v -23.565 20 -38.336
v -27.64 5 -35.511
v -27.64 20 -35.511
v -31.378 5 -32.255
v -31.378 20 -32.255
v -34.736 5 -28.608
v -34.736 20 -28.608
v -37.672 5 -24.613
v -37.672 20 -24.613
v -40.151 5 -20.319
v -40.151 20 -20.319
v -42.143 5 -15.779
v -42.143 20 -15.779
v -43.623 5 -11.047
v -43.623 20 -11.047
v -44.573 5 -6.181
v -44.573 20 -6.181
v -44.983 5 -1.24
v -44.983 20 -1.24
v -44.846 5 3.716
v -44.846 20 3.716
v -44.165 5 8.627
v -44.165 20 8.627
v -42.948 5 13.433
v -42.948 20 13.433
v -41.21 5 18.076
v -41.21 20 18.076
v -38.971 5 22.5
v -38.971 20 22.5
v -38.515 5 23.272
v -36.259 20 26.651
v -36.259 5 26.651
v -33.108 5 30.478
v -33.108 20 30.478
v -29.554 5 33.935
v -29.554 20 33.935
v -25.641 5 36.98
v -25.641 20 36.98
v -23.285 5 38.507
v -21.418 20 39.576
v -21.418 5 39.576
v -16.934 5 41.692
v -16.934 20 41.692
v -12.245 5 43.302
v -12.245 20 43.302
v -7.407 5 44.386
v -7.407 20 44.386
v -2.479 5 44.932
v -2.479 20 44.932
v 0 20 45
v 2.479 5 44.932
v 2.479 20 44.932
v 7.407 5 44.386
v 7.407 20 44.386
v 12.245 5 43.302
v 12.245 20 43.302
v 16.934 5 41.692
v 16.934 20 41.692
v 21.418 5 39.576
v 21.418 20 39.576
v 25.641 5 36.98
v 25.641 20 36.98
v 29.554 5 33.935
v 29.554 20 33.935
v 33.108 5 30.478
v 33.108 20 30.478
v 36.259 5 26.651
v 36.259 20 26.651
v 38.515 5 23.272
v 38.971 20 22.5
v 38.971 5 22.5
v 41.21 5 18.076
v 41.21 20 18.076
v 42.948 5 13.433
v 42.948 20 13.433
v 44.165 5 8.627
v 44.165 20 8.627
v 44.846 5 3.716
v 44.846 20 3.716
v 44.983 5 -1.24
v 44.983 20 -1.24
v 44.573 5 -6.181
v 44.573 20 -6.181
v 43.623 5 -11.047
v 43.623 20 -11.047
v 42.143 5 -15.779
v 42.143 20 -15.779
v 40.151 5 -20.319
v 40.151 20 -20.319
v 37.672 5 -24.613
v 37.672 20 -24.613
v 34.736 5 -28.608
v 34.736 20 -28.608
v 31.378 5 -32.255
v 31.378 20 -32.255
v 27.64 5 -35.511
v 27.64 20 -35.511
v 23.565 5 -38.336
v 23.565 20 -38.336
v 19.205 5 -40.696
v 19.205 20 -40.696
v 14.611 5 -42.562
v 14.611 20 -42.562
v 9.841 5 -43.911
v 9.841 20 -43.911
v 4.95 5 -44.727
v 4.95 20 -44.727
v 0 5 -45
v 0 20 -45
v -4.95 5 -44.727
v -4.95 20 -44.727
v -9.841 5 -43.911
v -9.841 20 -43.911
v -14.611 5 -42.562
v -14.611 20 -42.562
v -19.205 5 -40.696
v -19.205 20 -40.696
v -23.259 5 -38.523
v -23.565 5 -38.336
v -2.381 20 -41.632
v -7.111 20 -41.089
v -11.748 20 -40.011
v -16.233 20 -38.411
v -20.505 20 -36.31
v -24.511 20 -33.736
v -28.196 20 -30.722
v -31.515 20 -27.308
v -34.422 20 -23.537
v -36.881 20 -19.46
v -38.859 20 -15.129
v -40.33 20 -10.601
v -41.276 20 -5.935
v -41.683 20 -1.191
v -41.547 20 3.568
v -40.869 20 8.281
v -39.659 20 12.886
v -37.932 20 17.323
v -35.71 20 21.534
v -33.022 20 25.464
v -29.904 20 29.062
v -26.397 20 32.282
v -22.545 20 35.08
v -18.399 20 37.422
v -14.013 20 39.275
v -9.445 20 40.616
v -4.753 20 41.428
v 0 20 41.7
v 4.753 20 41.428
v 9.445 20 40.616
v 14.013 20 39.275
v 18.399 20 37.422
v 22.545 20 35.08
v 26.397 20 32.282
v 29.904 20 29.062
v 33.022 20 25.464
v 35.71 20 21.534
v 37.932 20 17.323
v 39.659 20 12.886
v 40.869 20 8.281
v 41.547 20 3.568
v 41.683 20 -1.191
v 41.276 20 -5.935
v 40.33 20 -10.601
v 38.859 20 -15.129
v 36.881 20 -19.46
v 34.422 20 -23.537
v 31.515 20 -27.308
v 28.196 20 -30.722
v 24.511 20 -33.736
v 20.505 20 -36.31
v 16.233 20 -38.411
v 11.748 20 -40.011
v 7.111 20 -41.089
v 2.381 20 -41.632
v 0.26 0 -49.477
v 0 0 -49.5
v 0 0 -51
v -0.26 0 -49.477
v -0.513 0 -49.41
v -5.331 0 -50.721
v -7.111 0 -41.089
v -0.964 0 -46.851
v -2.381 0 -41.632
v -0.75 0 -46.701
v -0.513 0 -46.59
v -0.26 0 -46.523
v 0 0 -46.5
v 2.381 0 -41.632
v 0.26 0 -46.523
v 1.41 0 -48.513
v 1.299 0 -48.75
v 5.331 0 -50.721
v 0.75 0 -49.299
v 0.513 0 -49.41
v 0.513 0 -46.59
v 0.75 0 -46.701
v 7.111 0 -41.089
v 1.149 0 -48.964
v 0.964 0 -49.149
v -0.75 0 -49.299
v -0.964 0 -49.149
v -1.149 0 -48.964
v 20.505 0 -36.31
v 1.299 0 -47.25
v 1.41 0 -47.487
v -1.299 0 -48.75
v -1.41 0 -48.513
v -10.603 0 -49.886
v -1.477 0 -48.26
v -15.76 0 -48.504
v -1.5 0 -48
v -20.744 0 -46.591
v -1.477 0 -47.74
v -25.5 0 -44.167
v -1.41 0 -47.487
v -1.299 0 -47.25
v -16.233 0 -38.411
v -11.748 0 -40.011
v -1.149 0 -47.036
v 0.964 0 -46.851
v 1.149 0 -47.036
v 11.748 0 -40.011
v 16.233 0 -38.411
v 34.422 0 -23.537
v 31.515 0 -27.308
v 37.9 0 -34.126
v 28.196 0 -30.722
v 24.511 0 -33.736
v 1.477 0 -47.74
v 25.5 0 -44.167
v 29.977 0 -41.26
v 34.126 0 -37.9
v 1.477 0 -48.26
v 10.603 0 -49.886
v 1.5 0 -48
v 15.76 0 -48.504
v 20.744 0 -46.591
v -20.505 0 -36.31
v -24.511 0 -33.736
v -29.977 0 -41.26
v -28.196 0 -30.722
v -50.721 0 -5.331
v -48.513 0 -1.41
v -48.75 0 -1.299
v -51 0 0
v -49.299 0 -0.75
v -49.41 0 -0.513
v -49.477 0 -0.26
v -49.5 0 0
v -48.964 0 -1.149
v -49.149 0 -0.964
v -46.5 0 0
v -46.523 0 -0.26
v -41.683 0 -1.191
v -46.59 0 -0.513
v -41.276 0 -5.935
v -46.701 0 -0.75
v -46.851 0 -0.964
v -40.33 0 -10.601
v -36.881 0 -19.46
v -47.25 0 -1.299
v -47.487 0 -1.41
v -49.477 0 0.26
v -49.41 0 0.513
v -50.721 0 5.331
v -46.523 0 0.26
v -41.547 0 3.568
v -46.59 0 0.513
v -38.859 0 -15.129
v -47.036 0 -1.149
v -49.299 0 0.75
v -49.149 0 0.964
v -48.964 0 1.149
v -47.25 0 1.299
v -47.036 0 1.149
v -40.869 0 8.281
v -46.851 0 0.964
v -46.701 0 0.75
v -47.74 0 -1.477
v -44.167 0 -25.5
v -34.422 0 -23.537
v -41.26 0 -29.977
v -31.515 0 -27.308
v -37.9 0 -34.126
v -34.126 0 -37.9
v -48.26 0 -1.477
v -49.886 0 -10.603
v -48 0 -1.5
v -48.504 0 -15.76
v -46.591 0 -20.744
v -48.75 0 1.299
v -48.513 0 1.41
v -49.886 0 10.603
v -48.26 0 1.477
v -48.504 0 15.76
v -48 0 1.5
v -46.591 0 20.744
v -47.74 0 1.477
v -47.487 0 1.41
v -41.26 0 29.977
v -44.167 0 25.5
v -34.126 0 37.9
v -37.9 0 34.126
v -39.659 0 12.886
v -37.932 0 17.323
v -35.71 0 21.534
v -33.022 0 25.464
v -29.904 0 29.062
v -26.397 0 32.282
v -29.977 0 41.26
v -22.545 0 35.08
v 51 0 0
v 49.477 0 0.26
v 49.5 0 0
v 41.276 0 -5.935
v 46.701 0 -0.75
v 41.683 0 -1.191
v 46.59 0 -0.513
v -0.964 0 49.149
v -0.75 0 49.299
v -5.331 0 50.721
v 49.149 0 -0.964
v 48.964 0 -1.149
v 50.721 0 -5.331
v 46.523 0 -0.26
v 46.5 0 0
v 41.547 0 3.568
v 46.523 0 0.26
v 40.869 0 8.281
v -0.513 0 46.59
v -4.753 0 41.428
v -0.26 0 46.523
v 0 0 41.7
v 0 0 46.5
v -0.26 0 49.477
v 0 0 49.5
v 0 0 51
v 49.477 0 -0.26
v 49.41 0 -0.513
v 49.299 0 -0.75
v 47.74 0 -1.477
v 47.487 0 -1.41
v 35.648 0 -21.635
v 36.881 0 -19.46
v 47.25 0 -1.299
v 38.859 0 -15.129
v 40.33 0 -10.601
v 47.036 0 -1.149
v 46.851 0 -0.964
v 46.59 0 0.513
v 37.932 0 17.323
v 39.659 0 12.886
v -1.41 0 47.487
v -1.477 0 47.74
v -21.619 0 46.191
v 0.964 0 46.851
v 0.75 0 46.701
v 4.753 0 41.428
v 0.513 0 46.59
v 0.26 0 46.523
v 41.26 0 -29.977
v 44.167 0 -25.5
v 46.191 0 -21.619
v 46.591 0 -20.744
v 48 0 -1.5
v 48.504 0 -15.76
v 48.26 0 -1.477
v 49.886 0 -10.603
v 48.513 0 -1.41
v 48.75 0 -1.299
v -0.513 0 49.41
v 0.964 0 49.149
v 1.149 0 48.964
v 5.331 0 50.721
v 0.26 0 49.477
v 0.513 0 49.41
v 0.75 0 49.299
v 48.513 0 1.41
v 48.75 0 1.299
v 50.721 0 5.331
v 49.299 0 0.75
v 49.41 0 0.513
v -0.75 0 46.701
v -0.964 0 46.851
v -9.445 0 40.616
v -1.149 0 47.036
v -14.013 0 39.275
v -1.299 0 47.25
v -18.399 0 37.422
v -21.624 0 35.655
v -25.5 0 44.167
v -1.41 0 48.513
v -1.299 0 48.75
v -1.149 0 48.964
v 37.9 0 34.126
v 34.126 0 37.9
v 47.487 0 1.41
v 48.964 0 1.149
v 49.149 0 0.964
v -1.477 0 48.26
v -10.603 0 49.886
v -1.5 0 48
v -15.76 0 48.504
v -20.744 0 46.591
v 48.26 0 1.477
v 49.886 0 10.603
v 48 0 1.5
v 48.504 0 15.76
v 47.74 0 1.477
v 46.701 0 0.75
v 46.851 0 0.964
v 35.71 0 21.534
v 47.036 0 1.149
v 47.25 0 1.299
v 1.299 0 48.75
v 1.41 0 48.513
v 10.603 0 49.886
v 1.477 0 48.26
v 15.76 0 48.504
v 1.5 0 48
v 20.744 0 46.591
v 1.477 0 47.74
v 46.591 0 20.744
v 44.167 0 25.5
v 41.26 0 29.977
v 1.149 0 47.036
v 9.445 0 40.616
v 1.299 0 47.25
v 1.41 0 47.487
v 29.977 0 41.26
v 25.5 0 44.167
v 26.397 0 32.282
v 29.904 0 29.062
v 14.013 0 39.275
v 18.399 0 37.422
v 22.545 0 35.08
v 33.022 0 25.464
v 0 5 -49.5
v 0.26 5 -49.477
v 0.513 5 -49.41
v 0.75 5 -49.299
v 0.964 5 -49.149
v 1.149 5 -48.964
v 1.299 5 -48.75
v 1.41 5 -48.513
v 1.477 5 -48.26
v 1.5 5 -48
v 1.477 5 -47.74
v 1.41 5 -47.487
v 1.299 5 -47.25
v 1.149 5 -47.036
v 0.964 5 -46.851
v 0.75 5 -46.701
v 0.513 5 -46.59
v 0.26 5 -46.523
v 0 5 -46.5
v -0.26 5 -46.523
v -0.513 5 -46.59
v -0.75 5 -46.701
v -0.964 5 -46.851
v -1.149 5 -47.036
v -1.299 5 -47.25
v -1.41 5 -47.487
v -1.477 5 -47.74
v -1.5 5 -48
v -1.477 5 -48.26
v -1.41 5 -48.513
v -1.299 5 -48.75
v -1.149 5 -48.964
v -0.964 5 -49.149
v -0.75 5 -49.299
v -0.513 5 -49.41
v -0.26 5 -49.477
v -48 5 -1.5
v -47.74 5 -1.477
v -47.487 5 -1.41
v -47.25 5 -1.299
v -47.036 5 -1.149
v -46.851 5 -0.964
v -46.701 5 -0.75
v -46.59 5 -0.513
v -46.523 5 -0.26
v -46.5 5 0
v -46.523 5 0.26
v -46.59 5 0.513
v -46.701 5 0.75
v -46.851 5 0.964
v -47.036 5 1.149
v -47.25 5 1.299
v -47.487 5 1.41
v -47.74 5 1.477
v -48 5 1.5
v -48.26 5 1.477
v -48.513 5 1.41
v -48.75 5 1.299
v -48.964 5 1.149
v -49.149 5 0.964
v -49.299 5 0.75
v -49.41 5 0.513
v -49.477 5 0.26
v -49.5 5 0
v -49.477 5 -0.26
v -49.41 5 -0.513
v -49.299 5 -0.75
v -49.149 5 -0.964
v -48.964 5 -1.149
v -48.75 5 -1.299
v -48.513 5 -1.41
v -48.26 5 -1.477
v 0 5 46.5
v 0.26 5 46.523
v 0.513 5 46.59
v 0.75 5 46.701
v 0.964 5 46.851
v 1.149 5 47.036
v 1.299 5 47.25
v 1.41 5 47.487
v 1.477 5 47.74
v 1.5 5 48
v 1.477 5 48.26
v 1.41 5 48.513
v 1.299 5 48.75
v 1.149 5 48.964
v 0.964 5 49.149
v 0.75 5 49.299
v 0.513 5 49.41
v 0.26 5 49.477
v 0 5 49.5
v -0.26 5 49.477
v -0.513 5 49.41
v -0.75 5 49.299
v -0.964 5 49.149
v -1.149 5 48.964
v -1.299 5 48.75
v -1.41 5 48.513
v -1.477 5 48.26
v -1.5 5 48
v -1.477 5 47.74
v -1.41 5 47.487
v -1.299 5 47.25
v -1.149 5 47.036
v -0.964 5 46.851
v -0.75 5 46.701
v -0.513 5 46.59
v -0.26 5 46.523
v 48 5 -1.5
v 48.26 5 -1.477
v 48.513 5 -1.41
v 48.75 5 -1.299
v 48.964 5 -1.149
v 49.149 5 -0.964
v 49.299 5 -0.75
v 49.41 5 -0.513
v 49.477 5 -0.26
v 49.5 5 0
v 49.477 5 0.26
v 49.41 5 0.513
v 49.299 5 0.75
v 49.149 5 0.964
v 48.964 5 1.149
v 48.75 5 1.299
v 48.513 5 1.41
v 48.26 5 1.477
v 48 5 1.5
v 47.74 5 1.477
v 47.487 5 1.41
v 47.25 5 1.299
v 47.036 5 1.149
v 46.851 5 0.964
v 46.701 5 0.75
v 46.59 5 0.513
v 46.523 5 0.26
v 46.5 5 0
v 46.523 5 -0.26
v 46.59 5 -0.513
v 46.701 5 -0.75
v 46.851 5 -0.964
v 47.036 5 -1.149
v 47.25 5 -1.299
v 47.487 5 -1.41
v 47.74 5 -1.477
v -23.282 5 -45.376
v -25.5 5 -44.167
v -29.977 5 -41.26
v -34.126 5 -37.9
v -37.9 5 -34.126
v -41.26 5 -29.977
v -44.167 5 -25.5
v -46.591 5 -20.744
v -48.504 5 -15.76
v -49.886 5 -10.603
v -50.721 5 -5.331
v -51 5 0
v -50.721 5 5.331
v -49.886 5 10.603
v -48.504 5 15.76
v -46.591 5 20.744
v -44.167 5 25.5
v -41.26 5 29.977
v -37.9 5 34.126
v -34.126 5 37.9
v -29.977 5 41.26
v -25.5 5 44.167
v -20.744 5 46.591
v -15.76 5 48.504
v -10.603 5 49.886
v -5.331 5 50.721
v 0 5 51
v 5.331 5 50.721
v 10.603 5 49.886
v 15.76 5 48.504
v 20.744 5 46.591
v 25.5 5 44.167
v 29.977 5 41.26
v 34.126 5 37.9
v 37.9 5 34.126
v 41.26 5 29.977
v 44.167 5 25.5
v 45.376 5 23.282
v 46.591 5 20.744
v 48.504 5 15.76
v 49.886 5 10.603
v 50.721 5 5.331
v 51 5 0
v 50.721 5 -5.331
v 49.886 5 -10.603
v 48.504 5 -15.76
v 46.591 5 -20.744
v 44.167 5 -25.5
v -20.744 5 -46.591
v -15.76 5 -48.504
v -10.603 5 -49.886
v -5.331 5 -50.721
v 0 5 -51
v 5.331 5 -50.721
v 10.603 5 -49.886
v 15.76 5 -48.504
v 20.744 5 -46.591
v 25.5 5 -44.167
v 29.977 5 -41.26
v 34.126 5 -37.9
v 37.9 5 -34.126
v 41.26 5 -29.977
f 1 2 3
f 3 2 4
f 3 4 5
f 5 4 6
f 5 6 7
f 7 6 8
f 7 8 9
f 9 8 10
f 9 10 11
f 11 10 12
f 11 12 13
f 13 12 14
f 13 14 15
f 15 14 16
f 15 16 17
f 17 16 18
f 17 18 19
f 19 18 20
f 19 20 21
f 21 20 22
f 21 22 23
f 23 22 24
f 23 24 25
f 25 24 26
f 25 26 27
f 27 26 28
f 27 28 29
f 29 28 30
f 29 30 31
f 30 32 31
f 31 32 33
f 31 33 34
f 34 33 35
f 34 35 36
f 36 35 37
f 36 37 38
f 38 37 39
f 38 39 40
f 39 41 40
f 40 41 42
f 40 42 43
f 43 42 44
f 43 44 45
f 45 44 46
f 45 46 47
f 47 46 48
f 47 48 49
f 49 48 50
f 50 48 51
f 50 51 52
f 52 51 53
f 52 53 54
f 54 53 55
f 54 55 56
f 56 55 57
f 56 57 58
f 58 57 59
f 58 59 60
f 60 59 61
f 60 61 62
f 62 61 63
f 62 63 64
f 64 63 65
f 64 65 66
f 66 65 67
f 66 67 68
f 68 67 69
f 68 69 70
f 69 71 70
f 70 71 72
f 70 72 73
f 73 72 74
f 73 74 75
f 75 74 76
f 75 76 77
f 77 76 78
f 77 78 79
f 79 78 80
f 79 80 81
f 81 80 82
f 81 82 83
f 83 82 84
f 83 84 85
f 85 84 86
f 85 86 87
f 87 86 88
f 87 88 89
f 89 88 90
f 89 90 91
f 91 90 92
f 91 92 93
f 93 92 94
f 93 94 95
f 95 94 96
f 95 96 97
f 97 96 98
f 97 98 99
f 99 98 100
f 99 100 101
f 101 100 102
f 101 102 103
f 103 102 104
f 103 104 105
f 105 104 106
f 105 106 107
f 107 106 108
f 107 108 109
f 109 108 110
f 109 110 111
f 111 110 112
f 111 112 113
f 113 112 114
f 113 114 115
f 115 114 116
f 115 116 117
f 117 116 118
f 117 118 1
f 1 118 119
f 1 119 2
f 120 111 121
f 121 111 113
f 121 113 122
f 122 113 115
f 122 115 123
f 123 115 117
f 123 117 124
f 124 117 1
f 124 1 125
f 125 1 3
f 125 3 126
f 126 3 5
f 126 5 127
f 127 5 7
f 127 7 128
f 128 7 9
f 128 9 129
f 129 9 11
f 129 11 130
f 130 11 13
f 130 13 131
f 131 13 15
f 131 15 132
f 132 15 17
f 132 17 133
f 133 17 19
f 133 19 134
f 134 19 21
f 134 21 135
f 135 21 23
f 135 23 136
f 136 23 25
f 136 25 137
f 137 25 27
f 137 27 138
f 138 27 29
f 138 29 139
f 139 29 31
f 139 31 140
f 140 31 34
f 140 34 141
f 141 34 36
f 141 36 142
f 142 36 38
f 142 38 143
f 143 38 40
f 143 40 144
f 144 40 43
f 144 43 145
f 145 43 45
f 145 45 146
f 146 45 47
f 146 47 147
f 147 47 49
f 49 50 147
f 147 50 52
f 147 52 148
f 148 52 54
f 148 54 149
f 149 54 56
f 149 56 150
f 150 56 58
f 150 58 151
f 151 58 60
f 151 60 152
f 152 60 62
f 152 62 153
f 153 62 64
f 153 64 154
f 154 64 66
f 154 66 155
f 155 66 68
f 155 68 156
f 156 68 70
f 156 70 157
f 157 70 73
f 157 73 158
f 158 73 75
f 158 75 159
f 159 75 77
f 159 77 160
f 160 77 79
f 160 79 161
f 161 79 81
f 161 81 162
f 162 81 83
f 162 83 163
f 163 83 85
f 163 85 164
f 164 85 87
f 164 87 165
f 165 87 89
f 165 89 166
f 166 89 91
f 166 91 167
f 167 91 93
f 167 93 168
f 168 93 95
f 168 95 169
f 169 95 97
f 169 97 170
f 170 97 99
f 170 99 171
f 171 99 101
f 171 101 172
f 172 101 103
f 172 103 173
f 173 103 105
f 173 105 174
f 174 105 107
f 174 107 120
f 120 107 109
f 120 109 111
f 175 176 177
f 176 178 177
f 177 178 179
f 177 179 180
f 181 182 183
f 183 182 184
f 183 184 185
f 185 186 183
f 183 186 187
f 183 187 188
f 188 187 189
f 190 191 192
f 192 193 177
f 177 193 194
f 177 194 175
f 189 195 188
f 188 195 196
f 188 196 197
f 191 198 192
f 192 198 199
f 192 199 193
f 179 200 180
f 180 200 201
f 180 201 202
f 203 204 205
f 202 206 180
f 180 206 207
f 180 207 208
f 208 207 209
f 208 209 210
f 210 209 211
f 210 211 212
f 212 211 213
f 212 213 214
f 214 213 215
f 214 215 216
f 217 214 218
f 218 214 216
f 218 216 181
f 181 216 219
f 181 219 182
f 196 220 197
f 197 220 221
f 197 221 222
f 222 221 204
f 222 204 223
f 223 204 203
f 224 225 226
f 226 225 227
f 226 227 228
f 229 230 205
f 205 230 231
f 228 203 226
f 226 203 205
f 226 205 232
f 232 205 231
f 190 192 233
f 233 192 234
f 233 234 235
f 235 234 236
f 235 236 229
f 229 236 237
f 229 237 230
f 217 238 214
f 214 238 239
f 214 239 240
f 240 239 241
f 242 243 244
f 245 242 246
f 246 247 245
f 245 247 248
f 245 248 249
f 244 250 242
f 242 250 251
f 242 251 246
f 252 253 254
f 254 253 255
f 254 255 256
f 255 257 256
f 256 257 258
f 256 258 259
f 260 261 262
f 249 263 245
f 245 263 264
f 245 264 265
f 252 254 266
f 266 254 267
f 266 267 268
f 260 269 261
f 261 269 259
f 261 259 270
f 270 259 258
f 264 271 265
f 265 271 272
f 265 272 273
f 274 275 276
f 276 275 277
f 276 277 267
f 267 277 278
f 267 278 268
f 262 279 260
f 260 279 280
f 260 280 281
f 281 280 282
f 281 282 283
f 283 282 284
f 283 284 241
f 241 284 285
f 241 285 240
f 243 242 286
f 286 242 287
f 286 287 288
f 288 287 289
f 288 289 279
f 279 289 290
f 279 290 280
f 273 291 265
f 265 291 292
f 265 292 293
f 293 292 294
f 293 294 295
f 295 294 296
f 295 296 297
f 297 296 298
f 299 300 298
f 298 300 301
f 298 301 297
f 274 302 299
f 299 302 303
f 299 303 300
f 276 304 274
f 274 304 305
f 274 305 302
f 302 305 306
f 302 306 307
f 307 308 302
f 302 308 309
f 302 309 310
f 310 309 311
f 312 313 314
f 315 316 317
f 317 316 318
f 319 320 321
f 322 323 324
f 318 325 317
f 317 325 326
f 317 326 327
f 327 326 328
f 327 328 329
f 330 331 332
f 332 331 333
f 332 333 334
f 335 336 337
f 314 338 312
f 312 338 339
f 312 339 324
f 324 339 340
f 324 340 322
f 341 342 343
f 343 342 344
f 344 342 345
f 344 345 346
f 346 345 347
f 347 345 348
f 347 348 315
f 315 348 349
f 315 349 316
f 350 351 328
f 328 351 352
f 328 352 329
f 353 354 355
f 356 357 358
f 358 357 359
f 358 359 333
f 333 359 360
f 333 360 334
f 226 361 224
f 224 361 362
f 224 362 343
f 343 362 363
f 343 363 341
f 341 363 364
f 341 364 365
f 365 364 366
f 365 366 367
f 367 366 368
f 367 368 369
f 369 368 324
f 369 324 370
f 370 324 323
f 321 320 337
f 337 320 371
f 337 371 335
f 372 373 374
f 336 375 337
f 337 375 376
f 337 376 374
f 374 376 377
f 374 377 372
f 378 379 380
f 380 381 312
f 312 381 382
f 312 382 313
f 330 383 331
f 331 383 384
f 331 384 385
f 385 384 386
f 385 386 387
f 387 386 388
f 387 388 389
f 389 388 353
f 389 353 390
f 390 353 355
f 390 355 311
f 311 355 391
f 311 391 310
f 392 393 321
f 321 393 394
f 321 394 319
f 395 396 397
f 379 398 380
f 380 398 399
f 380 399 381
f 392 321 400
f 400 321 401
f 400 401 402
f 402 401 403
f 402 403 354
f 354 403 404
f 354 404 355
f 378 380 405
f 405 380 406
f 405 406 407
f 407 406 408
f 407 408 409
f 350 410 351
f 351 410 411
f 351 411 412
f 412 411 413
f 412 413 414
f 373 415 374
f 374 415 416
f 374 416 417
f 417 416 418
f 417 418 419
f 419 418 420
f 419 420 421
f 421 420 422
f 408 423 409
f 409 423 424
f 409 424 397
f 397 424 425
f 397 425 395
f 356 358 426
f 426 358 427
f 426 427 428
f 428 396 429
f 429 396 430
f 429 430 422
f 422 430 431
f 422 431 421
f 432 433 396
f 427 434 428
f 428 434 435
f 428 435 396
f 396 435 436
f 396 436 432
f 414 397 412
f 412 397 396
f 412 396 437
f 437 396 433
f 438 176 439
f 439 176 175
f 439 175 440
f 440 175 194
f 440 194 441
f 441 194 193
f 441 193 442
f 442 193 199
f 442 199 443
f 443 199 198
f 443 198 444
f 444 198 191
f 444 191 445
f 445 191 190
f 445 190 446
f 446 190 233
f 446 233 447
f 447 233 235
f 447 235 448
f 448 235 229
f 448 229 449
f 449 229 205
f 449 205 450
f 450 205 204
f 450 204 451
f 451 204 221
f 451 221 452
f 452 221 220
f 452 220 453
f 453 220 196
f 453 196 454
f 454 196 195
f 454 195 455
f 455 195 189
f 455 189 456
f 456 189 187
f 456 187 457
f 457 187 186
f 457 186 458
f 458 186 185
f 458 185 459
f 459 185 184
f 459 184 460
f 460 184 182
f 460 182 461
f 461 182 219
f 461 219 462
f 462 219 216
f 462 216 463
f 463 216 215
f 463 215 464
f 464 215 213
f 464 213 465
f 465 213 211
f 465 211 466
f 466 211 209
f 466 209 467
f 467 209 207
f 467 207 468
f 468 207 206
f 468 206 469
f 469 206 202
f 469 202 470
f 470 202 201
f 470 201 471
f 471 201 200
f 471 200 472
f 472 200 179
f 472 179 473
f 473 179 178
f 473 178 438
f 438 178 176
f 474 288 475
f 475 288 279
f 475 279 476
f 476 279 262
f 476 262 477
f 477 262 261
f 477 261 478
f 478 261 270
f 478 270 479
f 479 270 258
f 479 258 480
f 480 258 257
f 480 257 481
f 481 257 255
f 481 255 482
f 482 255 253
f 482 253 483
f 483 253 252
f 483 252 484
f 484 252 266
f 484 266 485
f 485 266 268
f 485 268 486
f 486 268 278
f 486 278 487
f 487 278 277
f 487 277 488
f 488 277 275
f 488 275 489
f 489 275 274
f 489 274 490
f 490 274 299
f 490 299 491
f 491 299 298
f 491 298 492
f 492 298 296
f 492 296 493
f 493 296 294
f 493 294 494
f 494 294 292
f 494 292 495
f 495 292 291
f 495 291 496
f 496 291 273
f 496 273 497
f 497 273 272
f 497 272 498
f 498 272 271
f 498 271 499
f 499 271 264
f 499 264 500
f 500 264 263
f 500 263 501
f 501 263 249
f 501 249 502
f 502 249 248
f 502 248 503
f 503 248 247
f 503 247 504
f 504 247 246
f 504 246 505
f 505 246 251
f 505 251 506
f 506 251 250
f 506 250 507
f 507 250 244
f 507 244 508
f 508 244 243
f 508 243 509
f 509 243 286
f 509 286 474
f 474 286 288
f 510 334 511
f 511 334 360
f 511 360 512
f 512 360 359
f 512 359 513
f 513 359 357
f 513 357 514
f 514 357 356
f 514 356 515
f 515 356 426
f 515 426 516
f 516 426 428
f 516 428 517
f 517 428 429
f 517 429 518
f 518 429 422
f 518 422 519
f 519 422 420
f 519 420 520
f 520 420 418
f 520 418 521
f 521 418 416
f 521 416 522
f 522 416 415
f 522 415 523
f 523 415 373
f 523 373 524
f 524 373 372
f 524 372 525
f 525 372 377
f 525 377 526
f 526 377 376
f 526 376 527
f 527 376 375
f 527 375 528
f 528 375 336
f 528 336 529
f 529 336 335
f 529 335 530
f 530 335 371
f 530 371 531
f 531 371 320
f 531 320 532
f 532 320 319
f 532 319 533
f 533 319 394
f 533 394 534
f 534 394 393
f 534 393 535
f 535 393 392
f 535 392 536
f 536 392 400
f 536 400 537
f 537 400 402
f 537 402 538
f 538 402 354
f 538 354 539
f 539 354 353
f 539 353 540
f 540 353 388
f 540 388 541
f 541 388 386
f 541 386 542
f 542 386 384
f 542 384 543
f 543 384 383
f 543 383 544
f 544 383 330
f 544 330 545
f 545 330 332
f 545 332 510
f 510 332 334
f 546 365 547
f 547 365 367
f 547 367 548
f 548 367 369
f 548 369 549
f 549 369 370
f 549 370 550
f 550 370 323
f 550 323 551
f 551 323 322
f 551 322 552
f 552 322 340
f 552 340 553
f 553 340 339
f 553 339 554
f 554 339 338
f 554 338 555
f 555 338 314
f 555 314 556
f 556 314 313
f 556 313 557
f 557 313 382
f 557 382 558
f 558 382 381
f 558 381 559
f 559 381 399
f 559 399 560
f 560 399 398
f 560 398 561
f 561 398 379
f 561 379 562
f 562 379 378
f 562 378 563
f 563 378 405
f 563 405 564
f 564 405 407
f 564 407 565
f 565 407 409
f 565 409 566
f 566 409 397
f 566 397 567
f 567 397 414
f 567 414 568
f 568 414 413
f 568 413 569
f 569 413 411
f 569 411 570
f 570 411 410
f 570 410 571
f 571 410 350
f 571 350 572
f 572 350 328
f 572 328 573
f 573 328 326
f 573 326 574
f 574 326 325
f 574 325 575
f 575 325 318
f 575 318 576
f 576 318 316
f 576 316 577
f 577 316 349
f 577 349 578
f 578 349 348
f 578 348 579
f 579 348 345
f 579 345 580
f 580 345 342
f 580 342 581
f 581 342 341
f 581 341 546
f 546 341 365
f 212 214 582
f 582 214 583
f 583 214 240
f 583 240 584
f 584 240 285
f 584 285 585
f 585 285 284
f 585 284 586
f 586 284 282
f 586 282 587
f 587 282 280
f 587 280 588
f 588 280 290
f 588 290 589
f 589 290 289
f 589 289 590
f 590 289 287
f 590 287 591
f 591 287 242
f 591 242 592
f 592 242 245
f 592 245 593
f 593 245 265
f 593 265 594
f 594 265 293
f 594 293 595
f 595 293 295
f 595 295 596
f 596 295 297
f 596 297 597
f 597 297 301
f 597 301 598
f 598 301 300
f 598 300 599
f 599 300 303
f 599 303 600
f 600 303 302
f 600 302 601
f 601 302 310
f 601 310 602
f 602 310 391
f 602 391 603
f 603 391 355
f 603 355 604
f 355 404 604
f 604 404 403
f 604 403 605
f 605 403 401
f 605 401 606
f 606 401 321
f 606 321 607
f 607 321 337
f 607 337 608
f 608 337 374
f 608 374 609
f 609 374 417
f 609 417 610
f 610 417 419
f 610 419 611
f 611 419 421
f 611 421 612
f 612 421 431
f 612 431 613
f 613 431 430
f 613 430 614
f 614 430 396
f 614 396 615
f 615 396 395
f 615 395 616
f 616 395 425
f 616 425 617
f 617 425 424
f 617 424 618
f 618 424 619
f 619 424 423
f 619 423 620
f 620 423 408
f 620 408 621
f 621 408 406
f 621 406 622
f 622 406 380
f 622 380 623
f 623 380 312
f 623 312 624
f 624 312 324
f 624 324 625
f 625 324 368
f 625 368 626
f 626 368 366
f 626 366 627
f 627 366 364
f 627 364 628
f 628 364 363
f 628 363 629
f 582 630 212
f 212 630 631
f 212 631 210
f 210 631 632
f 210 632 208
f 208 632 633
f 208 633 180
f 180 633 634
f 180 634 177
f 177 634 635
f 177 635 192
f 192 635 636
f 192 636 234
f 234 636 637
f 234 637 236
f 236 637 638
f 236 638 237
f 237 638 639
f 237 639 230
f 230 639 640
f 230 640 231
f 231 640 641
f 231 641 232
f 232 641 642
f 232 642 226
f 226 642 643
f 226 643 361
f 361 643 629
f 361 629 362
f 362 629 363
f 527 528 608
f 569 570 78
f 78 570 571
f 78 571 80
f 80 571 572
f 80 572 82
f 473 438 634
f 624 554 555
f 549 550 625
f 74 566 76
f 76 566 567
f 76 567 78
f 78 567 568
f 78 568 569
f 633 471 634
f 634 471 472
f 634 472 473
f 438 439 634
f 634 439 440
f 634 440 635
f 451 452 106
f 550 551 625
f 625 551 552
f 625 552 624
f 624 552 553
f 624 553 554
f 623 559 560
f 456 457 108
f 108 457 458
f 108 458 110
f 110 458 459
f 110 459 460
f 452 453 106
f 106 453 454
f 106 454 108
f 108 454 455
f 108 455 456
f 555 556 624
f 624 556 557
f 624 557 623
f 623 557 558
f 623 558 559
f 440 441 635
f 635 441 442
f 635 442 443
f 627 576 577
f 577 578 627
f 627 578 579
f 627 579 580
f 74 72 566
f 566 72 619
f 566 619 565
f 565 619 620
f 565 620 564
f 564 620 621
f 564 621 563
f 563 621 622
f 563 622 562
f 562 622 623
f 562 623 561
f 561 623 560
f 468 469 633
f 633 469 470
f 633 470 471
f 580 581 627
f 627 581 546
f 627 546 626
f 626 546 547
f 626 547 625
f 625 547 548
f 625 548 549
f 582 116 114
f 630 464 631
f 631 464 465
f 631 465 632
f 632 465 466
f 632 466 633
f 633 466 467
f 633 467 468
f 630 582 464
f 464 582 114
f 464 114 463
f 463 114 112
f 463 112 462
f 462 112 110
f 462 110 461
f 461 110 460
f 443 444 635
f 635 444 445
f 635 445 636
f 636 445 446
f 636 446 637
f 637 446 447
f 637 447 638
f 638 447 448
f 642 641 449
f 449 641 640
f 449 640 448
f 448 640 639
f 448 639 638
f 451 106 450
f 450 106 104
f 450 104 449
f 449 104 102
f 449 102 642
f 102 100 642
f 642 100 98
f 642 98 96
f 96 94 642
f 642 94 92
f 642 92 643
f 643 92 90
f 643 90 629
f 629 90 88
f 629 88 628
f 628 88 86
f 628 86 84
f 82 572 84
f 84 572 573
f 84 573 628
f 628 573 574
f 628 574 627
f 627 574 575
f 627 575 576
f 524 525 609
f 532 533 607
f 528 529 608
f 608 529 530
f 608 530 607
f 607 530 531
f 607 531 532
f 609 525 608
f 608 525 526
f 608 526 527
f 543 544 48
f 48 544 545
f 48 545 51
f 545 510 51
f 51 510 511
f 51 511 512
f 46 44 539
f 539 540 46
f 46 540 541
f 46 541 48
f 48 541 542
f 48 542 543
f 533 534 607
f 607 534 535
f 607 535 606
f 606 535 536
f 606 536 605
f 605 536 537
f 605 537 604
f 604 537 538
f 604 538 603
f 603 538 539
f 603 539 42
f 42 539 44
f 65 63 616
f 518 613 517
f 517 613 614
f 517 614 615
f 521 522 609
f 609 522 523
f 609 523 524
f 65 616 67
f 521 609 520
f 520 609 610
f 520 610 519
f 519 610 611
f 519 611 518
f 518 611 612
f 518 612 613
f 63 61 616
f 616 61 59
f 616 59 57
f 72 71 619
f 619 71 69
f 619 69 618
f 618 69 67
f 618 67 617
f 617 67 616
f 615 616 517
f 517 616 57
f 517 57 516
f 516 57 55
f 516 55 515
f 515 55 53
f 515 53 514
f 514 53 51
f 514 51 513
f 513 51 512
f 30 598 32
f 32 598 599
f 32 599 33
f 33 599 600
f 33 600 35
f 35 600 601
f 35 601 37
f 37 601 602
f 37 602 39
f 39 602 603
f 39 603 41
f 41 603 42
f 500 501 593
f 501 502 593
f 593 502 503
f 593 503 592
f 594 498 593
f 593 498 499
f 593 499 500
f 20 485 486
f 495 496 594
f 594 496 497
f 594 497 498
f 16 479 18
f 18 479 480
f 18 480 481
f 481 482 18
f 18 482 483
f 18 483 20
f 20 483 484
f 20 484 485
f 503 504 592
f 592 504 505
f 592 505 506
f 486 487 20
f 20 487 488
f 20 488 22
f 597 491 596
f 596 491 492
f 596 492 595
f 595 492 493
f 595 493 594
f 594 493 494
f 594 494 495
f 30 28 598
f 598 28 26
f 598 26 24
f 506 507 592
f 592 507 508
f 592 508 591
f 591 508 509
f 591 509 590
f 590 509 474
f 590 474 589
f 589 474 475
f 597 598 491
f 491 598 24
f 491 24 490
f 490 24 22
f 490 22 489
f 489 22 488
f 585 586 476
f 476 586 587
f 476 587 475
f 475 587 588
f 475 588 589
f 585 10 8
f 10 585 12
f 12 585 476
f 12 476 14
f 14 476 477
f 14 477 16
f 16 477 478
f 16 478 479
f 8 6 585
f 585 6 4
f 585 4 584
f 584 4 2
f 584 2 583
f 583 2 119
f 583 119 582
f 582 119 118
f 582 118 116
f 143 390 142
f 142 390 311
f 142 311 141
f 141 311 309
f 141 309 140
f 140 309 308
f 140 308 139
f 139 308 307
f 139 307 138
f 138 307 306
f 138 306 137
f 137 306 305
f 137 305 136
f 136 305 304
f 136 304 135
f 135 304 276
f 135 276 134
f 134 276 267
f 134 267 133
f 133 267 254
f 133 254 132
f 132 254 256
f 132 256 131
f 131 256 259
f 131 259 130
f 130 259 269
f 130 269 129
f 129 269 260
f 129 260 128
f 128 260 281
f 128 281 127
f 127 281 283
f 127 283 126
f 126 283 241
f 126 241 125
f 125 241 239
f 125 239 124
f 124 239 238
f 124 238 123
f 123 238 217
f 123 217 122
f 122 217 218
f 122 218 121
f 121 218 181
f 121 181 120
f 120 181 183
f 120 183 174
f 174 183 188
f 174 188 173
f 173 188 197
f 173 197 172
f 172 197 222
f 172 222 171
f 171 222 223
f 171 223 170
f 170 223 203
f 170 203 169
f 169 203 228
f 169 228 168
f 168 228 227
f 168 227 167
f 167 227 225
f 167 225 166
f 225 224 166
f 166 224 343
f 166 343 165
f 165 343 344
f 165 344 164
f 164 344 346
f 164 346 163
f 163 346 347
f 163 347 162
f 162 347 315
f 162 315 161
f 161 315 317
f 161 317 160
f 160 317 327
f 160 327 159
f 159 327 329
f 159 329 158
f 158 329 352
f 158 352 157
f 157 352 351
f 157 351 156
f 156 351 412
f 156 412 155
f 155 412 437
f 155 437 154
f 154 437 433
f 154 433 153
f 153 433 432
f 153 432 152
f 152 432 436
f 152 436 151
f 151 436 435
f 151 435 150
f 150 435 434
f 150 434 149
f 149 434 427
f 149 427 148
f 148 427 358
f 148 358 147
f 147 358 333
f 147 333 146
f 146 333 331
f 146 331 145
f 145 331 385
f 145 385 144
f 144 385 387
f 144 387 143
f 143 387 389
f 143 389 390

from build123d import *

# Parameters (mm, degrees)
SKETCH1_R           = 45
SKETCH1_R_2         = 42
BOSS_EXTRUDE1_DEPTH = 20
SKETCH2_R           = 51
SKETCH2_R_2         = 1.5
SKETCH2_R_3         = 45
BOSS_EXTRUDE2_DEPTH = 5
BOSS_EXTRUDE3_START = -20
SKETCH3_R           = 42
SKETCH3_R_2         = 41.5
BOSS_EXTRUDE3_DEPTH = 20
SKETCH4_R           = 41.7
SKETCH4_R_2         = 41.5
CUT_EXTRUDE1_DEPTH  = 75.846509605


with BuildPart() as part:
    # Sketch1 → Boss-Extrude1 (new body)
    with BuildSketch(Plane(origin=(0, 0, 0), x_dir=(1, 0, 0), z_dir=(0, 1, 0))):
        with Locations(Location((0, 0, 0), (0, 0, 270))):
            Circle(SKETCH1_R)
        with Locations(Location((0, 0, 0), (0, 0, 270))):
            Circle(SKETCH1_R_2, mode=Mode.SUBTRACT)
    extrude(amount=BOSS_EXTRUDE1_DEPTH)

    # Sketch2 → Boss-Extrude2 (add)
    with BuildSketch(Plane.XZ):
        with Locations(Location((0, 0, 0), (0, 0, 270))):
            Circle(SKETCH2_R)
        with Locations(Location((0, -48, 0), (0, 0, 270))):
            Circle(SKETCH2_R_2, mode=Mode.SUBTRACT)
        with Locations(Location((-48, 0, 0), (0, 0, 270))):
            Circle(SKETCH2_R_2, mode=Mode.SUBTRACT)
        with Locations(Location((0, 0, 0), (0, 0, 270))):
            Circle(SKETCH2_R_3, mode=Mode.SUBTRACT)
        with BuildLine():
            ThreePointArc((49.5, 0), (48, -1.5), (46.5, 0))
            ThreePointArc((46.5, 0), (48, 1.5), (49.5, 0))
        make_face(mode=Mode.SUBTRACT)
        with Locations(Location((0, 48, 0), (0, 0, 270))):
            Circle(SKETCH2_R_2, mode=Mode.SUBTRACT)
    extrude(amount=-BOSS_EXTRUDE2_DEPTH)

    # Sketch3 → Boss-Extrude3 (add)
    with BuildSketch(Plane(origin=(0, 20, 0), x_dir=(1, 0, 0), z_dir=(0, 1, 0)).offset(BOSS_EXTRUDE3_START)):
        Circle(SKETCH3_R)
        with Locations(Location((0, 0, 0), (0, 0, 270))):
            Circle(SKETCH3_R_2, mode=Mode.SUBTRACT)
    extrude(amount=BOSS_EXTRUDE3_DEPTH)

    # Sketch4 → Cut-Extrude1 (cut, through all)
    with BuildSketch(Plane(origin=(0, 20, 0), x_dir=(1, 0, 0), z_dir=(0, 1, 0))):
        with Locations(Location((0, 0, 0), (0, 0, 270))):
            Circle(SKETCH4_R)
        Circle(SKETCH4_R_2, mode=Mode.SUBTRACT)
    extrude(amount=-CUT_EXTRUDE1_DEPTH, mode=Mode.SUBTRACT)


solid = part.part
